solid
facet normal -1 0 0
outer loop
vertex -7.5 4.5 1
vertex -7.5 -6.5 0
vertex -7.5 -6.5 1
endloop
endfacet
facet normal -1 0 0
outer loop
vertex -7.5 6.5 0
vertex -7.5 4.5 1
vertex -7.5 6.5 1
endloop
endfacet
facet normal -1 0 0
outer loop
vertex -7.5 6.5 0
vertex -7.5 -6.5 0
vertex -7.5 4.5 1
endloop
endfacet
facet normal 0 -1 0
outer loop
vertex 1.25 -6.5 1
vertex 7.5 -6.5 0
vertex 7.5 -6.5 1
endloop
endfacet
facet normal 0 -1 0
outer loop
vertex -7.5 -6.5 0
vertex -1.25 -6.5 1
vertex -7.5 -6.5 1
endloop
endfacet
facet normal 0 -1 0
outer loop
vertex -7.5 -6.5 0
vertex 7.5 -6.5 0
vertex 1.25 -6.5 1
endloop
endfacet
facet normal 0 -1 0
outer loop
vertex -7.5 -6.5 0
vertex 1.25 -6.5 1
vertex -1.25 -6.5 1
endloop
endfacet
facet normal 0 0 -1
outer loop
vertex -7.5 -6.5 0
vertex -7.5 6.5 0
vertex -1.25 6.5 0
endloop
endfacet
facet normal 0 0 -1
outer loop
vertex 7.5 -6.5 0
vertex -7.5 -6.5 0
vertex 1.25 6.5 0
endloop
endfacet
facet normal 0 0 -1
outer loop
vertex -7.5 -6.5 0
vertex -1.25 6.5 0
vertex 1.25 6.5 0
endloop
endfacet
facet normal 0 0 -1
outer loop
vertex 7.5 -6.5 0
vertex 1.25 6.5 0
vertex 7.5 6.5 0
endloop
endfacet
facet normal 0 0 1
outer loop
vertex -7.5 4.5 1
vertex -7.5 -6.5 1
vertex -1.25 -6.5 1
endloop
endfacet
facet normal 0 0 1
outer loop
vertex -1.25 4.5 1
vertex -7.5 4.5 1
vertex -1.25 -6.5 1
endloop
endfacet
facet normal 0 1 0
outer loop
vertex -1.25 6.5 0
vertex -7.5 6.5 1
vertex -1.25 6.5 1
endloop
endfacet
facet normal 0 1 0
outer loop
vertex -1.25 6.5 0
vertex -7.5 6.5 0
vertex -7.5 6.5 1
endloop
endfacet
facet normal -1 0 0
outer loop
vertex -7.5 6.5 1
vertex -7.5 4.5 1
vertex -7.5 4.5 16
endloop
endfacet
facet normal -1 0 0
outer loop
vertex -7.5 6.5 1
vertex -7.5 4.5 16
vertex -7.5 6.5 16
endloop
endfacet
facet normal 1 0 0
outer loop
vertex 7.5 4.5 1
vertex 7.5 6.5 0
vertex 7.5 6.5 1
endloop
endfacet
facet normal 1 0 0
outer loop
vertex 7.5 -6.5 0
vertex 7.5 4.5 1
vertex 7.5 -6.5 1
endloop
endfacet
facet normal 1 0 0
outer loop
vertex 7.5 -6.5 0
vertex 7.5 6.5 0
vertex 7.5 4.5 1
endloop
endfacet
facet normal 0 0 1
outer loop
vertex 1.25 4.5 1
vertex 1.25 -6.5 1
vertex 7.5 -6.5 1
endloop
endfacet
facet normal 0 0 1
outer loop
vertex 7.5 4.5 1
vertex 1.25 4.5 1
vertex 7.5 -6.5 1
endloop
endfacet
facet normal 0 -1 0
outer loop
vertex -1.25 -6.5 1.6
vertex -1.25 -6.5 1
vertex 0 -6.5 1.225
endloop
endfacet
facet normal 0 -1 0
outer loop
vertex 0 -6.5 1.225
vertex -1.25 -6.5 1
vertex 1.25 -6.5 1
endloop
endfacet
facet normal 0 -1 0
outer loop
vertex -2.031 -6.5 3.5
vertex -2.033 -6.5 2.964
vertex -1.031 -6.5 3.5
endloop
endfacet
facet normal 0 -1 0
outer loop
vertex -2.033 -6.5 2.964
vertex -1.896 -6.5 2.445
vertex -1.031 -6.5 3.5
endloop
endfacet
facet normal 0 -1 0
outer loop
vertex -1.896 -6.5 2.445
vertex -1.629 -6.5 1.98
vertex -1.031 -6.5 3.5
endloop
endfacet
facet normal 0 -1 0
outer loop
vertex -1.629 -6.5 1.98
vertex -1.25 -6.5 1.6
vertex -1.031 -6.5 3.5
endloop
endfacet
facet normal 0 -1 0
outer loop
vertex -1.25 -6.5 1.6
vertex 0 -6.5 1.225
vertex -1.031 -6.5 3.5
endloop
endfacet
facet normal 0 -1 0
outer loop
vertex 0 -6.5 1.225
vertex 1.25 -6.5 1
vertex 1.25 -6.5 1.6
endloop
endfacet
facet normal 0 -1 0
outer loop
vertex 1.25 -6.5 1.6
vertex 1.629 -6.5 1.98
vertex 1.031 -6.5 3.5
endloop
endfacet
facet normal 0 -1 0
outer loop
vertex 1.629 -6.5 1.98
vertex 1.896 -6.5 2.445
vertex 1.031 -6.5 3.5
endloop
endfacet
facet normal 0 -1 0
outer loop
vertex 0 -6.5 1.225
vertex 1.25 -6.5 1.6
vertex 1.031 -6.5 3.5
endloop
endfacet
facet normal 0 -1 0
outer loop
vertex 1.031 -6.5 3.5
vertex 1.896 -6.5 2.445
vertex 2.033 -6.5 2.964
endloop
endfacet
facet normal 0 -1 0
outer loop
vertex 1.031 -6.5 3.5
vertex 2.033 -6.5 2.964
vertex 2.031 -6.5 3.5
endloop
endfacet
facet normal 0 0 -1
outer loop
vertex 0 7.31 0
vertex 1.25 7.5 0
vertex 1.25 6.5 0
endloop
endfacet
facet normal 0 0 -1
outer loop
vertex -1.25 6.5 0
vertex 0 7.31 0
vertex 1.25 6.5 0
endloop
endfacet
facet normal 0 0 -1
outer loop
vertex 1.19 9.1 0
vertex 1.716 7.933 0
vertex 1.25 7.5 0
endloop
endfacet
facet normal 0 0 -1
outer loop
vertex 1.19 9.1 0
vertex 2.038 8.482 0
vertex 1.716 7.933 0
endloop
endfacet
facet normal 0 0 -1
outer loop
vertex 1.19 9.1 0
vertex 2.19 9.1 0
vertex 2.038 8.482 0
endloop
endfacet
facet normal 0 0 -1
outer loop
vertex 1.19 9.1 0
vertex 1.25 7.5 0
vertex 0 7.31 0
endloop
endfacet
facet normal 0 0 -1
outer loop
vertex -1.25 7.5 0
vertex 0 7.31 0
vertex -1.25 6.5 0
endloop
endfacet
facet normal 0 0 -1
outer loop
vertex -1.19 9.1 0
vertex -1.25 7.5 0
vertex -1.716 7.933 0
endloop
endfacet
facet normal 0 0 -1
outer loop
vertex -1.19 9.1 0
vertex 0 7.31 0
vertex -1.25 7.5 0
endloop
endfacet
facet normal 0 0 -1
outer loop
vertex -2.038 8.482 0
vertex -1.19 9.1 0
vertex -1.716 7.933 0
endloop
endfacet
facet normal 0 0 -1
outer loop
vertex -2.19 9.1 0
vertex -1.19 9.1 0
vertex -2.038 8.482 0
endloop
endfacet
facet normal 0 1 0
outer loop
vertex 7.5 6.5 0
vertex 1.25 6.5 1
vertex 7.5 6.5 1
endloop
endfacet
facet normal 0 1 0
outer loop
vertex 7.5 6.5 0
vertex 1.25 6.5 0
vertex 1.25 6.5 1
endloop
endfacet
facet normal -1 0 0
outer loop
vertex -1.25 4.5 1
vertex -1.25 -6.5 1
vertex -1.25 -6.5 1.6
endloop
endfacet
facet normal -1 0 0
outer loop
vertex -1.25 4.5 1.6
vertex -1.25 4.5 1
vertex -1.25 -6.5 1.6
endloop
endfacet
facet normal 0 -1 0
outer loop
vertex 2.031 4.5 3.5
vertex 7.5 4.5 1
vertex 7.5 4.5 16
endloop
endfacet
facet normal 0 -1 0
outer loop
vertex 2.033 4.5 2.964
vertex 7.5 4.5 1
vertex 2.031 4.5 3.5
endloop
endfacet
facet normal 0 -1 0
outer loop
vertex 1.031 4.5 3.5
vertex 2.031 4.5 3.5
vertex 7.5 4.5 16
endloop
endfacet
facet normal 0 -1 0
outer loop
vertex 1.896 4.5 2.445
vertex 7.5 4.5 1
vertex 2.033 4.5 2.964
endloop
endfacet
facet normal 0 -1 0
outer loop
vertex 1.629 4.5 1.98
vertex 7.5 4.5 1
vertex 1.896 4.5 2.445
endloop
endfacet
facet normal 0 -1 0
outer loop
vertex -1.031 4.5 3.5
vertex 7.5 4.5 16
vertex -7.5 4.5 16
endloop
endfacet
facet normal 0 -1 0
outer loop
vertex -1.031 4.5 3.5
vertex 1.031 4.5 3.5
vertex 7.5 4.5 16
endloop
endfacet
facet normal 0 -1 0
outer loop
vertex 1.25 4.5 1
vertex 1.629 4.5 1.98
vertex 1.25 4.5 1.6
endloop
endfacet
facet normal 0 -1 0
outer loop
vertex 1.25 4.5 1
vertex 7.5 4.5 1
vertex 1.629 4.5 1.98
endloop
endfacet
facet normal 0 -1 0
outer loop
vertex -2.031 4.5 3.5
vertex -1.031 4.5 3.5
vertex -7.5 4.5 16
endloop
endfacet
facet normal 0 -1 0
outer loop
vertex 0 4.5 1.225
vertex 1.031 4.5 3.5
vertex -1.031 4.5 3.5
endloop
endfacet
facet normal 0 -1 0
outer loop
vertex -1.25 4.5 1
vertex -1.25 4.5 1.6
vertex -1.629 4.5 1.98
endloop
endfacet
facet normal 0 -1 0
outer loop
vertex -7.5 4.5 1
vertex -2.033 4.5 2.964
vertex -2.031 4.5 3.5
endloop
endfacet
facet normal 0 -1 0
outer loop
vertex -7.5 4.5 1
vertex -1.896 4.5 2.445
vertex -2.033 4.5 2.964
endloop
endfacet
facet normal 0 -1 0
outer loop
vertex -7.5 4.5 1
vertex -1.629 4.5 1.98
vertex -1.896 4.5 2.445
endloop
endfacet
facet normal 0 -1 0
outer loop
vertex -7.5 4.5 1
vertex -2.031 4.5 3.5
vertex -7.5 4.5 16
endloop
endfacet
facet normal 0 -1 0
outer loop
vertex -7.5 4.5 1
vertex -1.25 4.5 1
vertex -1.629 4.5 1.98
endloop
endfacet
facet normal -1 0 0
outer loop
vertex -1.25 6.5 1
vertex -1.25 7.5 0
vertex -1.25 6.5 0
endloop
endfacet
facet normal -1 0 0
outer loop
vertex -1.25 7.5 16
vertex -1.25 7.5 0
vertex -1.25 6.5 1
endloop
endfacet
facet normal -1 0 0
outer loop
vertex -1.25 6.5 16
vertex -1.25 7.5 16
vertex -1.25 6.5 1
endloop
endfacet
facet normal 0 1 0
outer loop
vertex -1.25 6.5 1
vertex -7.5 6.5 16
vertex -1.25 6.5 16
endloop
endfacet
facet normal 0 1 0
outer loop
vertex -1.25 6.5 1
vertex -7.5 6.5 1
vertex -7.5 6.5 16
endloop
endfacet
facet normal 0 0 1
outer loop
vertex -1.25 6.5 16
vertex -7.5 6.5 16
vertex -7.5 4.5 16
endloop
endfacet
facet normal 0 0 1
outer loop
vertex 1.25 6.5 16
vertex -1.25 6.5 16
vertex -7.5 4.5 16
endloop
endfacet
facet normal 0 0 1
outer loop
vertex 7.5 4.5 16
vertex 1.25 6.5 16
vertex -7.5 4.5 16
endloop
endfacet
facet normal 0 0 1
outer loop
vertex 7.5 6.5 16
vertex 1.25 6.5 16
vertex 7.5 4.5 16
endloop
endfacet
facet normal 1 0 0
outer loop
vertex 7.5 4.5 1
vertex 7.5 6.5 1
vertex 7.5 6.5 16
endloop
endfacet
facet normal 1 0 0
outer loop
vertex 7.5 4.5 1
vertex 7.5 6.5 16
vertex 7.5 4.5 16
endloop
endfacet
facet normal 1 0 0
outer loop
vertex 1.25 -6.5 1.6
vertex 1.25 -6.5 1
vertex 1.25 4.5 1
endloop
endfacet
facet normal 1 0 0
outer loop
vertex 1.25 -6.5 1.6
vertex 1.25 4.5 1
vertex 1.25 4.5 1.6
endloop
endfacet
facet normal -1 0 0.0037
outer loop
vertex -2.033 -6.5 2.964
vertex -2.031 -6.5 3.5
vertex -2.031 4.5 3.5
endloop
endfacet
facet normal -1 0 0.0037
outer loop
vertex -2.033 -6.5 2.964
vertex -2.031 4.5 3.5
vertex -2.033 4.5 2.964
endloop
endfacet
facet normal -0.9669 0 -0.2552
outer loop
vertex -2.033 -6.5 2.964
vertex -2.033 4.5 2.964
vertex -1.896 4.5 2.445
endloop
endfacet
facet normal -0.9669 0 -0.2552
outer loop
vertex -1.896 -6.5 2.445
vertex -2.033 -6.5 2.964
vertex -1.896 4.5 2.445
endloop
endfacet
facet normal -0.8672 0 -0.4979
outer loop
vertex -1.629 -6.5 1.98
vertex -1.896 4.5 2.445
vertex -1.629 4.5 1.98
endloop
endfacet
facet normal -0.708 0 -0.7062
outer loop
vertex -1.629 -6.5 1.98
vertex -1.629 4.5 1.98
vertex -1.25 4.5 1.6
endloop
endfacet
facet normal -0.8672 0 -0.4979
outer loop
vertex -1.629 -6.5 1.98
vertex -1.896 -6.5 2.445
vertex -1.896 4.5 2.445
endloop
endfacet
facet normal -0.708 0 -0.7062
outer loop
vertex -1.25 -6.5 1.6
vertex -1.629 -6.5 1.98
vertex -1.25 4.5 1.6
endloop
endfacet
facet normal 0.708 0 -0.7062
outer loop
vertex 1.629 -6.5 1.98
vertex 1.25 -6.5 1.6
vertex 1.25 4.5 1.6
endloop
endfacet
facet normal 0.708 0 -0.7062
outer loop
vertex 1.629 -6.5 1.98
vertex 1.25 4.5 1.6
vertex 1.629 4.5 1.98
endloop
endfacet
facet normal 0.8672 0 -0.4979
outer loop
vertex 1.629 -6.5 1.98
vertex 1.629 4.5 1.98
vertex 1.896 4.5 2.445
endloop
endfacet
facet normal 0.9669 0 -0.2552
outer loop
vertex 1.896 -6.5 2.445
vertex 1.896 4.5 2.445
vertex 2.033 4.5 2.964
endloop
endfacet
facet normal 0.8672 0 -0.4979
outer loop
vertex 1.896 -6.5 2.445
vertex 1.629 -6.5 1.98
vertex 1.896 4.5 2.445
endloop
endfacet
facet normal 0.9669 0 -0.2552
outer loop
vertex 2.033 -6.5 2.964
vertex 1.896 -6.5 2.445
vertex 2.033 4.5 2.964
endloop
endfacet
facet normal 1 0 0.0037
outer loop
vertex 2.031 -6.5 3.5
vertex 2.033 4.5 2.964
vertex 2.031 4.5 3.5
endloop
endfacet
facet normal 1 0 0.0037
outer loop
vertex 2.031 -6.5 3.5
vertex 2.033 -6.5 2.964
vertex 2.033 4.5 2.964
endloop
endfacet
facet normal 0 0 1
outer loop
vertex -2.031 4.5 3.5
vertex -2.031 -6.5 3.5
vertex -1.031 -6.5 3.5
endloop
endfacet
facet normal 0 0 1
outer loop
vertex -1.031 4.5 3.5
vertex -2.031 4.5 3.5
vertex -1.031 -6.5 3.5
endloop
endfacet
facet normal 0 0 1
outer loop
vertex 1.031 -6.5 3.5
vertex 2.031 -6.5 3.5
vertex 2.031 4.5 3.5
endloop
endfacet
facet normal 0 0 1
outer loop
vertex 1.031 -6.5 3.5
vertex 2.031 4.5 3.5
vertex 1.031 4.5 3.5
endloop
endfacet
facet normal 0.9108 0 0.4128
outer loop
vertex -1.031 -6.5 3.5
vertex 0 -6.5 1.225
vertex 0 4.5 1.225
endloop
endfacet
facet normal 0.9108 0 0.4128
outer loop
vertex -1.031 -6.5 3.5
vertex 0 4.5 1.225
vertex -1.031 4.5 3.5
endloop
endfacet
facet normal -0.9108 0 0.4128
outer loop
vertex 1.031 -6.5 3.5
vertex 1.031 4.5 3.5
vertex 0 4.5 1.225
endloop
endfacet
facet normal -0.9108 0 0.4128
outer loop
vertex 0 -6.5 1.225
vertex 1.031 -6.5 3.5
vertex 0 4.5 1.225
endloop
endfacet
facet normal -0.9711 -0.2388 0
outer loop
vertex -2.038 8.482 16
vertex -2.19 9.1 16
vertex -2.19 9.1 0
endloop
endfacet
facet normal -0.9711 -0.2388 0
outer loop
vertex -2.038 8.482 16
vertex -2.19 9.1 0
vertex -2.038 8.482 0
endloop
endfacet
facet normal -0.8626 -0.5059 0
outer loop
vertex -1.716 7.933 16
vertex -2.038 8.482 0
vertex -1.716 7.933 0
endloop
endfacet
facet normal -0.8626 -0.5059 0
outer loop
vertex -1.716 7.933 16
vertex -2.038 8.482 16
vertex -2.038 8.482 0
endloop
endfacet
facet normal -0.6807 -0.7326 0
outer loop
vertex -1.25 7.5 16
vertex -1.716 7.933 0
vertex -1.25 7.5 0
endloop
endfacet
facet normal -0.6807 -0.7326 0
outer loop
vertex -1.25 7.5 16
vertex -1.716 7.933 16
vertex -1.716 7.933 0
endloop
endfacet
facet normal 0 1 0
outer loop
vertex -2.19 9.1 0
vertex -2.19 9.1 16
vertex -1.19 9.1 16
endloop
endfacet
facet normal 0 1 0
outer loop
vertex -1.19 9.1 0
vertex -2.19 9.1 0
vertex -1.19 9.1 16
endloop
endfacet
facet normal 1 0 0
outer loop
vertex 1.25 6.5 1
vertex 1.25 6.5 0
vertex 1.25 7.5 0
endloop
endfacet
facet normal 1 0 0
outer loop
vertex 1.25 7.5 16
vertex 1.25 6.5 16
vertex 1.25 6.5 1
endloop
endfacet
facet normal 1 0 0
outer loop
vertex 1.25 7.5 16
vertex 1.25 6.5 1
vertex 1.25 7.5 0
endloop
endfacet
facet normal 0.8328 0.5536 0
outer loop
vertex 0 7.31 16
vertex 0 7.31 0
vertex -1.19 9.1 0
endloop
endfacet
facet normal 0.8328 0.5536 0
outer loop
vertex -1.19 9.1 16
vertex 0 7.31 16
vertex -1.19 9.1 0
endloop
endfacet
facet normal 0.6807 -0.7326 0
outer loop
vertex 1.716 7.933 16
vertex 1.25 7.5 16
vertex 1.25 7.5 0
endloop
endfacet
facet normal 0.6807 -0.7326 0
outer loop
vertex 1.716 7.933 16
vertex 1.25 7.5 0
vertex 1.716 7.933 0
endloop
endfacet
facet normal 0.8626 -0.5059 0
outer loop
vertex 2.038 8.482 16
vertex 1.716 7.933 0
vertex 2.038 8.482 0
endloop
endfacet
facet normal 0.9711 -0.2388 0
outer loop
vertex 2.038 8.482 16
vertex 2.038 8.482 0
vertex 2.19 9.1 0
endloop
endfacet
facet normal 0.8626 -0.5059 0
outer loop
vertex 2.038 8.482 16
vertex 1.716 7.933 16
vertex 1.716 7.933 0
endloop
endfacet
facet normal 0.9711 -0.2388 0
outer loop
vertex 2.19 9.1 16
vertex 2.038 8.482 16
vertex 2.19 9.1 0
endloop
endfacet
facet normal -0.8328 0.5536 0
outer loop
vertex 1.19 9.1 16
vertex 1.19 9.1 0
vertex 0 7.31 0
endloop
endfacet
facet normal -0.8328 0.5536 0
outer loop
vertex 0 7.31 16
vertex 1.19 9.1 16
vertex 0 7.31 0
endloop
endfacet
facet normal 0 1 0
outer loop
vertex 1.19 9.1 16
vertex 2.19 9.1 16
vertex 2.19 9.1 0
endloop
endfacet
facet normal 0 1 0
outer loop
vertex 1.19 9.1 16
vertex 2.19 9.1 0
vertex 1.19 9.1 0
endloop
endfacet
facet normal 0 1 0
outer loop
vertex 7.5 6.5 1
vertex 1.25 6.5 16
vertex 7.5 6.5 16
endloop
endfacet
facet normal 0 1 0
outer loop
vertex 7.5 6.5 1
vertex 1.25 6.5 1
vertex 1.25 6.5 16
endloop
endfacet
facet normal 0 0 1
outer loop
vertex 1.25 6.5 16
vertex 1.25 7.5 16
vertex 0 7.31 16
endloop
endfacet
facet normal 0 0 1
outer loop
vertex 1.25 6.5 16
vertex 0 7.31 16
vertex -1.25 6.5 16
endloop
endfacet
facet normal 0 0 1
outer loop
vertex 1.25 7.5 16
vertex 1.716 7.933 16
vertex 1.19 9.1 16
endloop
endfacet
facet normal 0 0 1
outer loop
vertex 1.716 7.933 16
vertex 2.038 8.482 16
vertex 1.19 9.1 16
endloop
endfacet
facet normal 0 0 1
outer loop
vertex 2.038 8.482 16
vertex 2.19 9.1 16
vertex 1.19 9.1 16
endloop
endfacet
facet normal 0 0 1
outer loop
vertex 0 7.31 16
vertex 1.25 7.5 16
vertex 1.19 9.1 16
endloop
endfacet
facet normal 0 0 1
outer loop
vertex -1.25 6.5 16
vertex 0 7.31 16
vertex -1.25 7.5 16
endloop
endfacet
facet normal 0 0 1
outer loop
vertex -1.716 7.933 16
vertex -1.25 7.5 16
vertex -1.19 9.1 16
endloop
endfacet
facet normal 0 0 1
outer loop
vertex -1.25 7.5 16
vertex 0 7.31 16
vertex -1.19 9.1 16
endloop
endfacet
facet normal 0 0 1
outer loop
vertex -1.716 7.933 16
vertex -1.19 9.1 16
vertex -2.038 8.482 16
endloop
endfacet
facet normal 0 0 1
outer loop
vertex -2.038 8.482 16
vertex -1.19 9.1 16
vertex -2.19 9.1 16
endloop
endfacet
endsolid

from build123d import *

# Parameters (mm, degrees)
SKETCH_W     = 15
SKETCH_H     = 13
PAD_DEPTH    = 1
SKETCH001_W  = 15
SKETCH001_H  = 2
PAD001_DEPTH = 15
PAD002_DEPTH = 11
PAD003_DEPTH = 16


with BuildPart() as part:
    # Sketch → Pad (new body)
    with BuildSketch(Plane.XY):
        Rectangle(SKETCH_W, SKETCH_H)
    extrude(amount=PAD_DEPTH)

    # Sketch001 → Pad001 (new body)
    with BuildSketch(Plane.XY.offset(1)):
        with Locations((0, 5.5)):
            Rectangle(SKETCH001_W, SKETCH001_H)
    extrude(amount=PAD001_DEPTH)

    # Sketch002 → Pad002 (new body)
    with BuildSketch(Plane.XZ.offset(6.5)):
        with BuildLine():
            Line((-1.25, 1), (1.25, 1))
            Line((1.25, 1), (1.25, 1.6))
            ThreePointArc((1.25, 1.6), (1.895909, 2.445045), (2.031445, 3.5))
            Line((2.031445, 3.5), (1.031445, 3.5))
            Line((1.031445, 3.5), (0, 1.224808))
            Line((0, 1.224808), (-1.031445, 3.5))
            Line((-2.031445, 3.5), (-1.031445, 3.5))
            ThreePointArc((-2.031445, 3.5), (-1.895909, 2.445045), (-1.25, 1.6))
            Line((-1.25, 1), (-1.25, 1.6))
        make_face()
    extrude(amount=-PAD002_DEPTH)

    # Sketch003 → Pad003 (new body)
    with BuildSketch(Plane.XY.offset(16)):
        with BuildLine():
            Line((-1.25, 7.5), (-1.25, 6.5))
            Line((-1.25, 6.5), (1.25, 6.5))
            Line((1.25, 6.5), (1.25, 7.5))
            ThreePointArc((1.25, 7.5), (1.896907, 8.196052), (2.189917, 9.1))
            Line((2.189917, 9.1), (1.189917, 9.1))
            Line((1.189917, 9.1), (0, 7.310387))
            Line((0, 7.310387), (-1.189917, 9.1))
            Line((-2.189917, 9.1), (-1.189917, 9.1))
            ThreePointArc((-2.189917, 9.1), (-1.896907, 8.196052), (-1.25, 7.5))
        make_face()
    extrude(amount=-PAD003_DEPTH)


solid = part.part
